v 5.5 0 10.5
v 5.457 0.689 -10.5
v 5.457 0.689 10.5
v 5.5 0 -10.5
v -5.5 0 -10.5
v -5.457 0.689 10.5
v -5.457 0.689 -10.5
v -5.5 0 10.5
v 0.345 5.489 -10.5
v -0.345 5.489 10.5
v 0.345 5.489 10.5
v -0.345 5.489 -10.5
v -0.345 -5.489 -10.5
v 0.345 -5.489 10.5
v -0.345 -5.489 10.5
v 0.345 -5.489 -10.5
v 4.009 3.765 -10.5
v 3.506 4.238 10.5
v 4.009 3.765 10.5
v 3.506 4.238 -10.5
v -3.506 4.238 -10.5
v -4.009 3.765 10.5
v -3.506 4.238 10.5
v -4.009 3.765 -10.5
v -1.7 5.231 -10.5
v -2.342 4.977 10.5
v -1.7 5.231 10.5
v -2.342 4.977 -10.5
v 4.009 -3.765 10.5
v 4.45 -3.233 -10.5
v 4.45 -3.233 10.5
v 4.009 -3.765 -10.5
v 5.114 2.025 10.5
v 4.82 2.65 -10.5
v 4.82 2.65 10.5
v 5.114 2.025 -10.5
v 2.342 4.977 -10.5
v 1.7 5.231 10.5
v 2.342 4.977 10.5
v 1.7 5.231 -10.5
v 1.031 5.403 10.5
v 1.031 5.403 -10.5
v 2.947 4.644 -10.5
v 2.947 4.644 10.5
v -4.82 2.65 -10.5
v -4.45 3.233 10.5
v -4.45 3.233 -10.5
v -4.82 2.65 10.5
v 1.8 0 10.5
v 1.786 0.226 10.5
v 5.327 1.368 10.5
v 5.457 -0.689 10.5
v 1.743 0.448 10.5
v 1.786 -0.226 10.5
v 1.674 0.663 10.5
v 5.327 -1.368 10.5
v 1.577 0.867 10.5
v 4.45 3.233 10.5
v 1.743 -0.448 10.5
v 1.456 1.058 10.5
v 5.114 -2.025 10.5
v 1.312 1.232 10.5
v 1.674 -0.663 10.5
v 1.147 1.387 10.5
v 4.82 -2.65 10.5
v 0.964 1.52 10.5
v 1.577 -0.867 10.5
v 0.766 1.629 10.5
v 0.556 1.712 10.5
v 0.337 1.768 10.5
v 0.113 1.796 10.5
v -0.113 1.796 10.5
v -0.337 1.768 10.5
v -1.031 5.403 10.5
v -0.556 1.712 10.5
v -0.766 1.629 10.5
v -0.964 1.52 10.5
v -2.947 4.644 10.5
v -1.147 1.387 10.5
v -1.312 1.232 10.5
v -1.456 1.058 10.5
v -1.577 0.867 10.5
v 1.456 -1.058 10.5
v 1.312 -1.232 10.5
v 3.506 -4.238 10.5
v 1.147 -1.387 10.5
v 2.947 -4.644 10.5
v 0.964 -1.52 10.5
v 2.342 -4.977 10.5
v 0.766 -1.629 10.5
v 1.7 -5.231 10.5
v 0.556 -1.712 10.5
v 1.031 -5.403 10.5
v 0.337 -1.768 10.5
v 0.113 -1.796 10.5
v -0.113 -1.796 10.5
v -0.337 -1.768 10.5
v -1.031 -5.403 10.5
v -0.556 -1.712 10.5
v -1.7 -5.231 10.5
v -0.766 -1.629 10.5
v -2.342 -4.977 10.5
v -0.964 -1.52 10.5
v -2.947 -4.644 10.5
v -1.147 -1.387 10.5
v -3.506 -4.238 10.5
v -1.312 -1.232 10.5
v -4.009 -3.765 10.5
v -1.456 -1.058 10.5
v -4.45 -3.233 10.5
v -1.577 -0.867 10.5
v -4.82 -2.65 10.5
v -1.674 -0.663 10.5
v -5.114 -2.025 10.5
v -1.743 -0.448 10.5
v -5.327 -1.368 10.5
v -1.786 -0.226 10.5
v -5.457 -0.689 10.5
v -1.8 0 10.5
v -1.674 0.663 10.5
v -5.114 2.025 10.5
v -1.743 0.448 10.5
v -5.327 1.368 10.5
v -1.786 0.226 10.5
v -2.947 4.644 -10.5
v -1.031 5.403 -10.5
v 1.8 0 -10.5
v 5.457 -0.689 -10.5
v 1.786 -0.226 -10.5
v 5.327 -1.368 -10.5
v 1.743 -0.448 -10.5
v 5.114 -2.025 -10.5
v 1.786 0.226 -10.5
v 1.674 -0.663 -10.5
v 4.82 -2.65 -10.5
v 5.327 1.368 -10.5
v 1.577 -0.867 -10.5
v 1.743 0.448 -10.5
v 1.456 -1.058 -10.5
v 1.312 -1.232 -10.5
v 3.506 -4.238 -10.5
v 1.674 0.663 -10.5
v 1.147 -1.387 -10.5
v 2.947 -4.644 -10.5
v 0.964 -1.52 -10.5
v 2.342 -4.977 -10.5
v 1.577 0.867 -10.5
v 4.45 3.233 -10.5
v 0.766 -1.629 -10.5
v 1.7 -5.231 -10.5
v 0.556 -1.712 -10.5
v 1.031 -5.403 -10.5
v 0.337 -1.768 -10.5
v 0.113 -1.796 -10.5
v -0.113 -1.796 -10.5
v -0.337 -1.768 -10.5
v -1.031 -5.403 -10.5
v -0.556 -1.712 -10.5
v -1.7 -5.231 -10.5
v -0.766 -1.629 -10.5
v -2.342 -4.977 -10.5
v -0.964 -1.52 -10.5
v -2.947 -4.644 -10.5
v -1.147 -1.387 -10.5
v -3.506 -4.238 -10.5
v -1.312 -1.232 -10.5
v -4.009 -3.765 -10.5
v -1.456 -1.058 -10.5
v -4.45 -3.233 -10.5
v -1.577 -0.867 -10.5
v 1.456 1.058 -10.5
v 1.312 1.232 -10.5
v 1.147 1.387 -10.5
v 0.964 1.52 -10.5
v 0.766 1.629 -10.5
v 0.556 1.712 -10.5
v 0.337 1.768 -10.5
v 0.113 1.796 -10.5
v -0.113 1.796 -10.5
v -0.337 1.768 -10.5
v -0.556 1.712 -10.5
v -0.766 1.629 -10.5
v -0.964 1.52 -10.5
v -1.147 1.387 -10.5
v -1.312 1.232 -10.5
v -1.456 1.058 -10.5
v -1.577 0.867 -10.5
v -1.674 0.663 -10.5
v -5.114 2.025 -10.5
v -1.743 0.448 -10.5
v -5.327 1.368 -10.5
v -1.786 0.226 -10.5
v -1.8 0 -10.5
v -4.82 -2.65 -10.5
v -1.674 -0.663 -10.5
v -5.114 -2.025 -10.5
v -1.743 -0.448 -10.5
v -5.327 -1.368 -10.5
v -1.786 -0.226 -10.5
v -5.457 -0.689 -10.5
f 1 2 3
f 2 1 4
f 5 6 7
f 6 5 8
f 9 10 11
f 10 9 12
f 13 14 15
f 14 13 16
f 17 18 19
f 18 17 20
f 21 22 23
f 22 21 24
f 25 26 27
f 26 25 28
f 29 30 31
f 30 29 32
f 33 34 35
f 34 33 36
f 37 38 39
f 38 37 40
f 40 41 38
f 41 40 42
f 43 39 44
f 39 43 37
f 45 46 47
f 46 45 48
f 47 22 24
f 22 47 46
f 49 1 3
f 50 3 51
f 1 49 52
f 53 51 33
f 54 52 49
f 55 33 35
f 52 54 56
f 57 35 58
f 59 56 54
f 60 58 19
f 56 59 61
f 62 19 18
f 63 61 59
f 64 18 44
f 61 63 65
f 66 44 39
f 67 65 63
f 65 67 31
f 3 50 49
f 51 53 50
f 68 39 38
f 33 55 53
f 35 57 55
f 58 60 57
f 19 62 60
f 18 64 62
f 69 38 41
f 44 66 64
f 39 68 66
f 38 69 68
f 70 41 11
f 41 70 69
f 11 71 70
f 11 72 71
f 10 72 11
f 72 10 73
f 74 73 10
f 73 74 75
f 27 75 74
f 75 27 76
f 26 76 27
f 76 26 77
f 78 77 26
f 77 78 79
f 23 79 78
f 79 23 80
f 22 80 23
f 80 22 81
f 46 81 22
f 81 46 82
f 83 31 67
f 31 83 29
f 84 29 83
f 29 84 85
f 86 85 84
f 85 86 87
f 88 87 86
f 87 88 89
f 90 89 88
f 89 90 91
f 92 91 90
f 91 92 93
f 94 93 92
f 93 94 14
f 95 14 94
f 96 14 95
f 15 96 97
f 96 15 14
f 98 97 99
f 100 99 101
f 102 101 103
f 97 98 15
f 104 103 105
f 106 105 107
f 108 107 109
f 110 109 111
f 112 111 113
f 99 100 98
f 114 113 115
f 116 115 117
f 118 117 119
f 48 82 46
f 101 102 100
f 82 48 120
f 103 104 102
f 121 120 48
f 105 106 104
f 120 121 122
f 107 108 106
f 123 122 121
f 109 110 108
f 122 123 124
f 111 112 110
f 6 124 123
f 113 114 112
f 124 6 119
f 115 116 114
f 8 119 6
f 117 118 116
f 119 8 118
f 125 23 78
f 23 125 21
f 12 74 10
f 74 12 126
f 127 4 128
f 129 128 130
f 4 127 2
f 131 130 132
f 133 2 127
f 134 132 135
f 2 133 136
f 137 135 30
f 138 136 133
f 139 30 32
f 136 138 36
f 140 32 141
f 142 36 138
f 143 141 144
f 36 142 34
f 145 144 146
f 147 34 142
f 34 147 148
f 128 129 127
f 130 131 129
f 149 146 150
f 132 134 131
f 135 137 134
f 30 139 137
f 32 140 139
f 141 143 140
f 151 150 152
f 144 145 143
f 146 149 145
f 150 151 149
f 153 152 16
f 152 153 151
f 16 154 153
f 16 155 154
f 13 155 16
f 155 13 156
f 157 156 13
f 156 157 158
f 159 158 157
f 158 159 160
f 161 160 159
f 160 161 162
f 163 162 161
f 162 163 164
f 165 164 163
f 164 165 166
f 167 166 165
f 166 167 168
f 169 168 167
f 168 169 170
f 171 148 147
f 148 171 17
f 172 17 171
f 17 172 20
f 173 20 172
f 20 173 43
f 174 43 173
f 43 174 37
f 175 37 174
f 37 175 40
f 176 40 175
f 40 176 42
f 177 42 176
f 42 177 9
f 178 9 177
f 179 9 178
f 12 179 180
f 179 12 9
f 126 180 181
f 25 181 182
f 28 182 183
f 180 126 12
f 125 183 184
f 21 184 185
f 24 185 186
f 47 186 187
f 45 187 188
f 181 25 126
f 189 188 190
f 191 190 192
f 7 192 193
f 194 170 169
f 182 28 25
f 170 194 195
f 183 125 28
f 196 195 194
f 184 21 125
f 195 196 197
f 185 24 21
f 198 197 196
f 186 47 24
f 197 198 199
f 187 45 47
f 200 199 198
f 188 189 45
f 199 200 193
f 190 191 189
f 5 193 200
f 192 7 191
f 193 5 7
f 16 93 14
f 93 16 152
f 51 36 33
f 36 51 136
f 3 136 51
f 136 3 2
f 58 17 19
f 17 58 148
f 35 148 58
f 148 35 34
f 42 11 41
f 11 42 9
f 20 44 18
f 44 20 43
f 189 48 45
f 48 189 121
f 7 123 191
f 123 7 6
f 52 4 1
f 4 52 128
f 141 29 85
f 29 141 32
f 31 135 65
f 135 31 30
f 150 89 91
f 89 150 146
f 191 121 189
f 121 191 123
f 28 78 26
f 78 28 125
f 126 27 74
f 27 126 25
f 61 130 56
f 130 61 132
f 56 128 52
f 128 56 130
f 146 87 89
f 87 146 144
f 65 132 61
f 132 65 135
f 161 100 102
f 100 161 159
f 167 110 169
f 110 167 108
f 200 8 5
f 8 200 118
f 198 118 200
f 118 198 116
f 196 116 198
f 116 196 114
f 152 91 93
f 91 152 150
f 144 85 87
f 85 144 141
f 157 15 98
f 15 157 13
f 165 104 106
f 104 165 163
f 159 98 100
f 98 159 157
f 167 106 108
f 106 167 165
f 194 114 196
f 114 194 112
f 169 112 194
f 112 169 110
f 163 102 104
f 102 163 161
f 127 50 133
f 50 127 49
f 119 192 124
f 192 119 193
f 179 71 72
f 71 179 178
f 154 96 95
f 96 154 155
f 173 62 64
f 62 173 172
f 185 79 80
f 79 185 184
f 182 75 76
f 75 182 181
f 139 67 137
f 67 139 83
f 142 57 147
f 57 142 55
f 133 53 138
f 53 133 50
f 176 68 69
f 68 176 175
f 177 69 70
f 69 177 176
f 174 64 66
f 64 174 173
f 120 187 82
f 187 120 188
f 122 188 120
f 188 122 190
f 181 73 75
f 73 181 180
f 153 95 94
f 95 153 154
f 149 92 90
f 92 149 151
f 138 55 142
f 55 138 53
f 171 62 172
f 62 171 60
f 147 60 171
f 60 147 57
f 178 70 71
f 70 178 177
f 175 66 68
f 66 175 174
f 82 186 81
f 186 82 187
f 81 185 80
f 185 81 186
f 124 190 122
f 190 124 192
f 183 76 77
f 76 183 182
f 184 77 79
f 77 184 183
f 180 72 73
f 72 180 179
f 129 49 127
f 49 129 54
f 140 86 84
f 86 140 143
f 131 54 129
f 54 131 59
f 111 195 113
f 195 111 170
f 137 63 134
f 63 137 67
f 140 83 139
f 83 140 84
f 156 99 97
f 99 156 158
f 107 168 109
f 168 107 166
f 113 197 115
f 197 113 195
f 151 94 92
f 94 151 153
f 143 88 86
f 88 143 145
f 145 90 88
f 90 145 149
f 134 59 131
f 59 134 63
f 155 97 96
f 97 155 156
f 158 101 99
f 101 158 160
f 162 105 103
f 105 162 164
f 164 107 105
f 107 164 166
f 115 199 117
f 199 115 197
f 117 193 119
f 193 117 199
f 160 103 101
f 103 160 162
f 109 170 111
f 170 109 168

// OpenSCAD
$fn = 50;


difference() {
	union() {
		translate(v = [0, 0, -10.5000000000]) {
			cylinder(h = 21, r = 5.5000000000);
		}
	}
	union() {
		translate(v = [0, 0, -100.0000000000]) {
			cylinder(h = 200, r = 1.8000000000);
		}
	}
}
